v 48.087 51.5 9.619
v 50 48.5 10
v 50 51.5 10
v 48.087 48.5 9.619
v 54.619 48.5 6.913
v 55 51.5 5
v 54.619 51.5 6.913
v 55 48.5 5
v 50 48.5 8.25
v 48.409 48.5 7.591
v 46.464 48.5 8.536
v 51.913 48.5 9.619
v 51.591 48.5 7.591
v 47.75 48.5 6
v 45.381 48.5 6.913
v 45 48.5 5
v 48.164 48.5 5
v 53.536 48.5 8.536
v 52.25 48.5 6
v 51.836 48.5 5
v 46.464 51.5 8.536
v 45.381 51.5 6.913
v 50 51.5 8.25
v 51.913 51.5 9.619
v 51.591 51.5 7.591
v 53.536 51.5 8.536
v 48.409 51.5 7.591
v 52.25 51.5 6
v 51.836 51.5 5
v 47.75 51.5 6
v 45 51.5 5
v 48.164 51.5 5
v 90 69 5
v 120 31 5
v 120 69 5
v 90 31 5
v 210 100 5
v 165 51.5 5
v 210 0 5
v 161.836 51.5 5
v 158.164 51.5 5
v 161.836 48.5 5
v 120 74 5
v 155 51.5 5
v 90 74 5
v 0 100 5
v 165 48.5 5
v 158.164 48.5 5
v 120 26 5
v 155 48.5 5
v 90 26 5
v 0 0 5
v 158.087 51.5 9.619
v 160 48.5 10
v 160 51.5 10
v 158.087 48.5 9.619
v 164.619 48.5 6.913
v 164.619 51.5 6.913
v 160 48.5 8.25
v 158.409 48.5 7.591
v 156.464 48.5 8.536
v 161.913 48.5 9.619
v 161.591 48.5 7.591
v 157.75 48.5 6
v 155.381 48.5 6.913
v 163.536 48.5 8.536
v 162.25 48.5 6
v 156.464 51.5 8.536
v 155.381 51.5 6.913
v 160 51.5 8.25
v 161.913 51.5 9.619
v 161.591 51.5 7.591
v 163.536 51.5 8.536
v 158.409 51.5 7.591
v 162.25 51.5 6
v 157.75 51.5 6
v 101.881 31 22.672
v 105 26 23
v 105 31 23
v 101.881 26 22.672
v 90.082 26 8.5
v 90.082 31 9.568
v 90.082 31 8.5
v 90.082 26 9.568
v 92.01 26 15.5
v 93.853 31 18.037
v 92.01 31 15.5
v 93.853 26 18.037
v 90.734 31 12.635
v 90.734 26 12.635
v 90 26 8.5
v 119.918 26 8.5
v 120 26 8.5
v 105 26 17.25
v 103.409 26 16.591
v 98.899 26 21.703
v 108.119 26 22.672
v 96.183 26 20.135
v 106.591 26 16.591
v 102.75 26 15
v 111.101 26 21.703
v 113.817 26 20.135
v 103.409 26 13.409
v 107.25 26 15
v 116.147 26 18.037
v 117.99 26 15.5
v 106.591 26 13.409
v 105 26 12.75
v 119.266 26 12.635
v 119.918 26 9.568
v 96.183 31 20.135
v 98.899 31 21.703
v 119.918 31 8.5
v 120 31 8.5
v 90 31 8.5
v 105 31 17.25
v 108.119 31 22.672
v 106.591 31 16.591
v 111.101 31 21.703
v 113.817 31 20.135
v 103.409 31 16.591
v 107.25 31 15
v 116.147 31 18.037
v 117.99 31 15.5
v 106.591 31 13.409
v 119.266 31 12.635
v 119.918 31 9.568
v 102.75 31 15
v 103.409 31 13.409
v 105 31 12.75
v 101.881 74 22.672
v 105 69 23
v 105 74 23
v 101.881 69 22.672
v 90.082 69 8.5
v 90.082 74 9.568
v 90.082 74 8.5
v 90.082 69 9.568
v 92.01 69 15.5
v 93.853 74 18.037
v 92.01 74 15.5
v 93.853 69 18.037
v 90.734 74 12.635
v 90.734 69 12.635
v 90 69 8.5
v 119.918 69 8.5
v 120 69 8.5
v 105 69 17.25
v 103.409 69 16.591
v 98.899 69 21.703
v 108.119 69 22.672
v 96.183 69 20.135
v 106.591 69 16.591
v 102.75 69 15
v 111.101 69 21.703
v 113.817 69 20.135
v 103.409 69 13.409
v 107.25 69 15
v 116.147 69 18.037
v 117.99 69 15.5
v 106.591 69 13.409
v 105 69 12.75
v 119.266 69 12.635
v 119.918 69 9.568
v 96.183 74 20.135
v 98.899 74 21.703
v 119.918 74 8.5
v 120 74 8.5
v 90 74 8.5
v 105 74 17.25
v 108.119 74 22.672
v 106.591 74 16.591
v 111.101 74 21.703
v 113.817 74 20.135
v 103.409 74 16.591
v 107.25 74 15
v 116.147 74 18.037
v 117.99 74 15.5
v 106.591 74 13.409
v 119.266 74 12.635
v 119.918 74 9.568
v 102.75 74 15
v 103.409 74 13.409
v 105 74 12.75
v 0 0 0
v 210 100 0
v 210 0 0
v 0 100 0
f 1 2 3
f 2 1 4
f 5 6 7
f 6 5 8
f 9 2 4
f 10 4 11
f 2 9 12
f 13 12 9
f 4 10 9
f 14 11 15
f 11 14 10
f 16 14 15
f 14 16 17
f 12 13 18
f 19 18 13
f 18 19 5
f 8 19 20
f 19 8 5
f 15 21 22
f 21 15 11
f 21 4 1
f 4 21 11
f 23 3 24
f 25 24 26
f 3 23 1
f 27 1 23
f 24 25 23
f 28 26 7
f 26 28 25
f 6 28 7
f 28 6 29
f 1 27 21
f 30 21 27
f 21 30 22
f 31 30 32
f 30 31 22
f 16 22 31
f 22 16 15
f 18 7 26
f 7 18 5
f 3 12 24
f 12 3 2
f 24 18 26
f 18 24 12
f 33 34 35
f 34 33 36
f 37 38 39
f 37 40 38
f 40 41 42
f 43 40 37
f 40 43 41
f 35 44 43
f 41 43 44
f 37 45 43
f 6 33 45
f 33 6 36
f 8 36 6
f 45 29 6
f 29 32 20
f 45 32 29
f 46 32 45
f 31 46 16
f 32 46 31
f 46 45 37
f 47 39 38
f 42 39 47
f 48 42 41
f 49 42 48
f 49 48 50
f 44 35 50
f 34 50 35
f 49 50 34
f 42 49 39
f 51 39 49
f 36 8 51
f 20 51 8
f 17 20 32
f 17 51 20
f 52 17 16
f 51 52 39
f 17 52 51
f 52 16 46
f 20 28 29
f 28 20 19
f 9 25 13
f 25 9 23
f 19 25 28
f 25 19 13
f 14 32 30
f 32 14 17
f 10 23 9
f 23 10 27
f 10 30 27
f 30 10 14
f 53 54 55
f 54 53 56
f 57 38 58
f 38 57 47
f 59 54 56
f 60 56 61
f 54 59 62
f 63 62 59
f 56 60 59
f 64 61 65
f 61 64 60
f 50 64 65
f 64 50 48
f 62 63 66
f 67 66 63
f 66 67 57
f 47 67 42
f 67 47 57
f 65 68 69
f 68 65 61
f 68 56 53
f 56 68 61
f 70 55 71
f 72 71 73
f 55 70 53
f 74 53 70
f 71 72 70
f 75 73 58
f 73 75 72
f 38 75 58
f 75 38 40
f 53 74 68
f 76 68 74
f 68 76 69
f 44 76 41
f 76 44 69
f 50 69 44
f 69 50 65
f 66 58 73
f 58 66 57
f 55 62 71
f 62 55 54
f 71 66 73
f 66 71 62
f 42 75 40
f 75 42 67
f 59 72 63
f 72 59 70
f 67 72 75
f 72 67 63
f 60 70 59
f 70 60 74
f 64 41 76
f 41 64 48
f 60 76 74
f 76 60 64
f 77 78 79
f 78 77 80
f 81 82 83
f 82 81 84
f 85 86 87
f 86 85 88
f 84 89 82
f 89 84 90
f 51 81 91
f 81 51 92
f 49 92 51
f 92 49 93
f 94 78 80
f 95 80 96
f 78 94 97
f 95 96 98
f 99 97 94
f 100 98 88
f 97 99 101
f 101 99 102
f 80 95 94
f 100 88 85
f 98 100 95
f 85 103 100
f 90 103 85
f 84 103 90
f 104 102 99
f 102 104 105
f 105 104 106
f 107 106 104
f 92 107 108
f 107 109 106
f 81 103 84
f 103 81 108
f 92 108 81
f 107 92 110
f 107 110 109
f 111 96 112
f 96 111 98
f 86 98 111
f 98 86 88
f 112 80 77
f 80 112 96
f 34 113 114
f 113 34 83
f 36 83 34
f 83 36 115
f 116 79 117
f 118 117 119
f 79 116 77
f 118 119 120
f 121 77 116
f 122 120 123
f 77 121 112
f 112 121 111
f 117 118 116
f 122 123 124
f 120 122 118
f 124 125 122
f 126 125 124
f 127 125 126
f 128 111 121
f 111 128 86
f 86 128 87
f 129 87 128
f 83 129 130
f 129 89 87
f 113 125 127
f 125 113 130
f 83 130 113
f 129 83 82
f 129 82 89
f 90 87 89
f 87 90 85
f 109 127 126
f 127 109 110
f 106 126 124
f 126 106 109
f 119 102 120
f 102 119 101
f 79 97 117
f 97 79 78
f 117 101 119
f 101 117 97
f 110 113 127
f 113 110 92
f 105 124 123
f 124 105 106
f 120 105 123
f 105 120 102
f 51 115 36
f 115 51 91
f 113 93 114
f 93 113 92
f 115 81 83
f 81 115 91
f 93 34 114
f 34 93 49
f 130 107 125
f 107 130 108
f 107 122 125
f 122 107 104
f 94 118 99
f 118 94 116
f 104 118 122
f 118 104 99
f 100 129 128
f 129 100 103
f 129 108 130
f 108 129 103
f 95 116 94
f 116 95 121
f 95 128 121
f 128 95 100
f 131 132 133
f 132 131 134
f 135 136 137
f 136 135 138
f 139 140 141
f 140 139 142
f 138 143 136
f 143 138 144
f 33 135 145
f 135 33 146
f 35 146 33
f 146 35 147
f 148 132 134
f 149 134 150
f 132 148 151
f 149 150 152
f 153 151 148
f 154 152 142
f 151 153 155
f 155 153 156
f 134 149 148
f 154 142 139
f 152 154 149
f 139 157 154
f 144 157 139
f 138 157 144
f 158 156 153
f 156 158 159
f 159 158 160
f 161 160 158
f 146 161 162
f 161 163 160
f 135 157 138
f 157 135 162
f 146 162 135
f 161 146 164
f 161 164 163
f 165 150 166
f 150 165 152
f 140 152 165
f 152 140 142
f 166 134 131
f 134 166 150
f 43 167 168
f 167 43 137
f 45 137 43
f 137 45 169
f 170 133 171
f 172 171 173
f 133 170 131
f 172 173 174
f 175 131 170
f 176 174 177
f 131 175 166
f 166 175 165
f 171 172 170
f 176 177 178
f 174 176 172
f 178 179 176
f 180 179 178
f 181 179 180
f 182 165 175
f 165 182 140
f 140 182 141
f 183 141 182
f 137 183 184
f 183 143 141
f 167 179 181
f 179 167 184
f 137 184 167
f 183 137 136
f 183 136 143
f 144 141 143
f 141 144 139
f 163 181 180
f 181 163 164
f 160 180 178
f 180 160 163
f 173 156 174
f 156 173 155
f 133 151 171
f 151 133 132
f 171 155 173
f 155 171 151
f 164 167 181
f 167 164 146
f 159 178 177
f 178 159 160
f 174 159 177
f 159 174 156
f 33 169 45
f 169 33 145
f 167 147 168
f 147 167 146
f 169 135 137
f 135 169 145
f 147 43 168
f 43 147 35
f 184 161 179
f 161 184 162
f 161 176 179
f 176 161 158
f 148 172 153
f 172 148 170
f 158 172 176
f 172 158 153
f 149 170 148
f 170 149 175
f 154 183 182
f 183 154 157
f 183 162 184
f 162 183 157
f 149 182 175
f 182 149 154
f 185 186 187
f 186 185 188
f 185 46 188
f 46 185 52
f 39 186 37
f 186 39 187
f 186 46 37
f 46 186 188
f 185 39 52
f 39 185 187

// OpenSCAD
// prototype pedal 
plate_width = 210;
plate_length = 100;
plate_height = 5;

helperplate_width = 30;
helperplate_length = 5;
helperplate_height = 8;

spring_point = 55;


helperhelper_width = 40;
helperhelper_length = 12; 
helperhelper_height = 5;


plate_dimensions = [
	plate_width,
	plate_length,
	plate_height];
	
helperplate_dimensions = [
	helperplate_width,
	helperplate_length,
	helperplate_height];
	
helperhelper_dimensions = [
	helperhelper_width,
	helperhelper_length, 
	helperhelper_height,
];
	
drillhole_gap = 10;
drillhole_diameter = 4.5;
drillhole_spring_diameter = 6.5;
edge_gap = drillhole_gap + drillhole_diameter / 2; 


module lochplatte( groesse, loch_dm, loch_abst, anzahl = [12,6] ) {

	difference() {

		cube( plate_dimensions );

		randabstand   = loch_abst + loch_dm/2;
		x_lochdistanz = (groesse.x - 2*randabstand) / (anzahl.x - 1);
		y_lochdistanz = (groesse.y - 2*randabstand) / (anzahl.y - 1);
		x_werte       = [randabstand : x_lochdistanz : groesse.x - randabstand + 0.1];
		y_werte       = [randabstand : y_lochdistanz : groesse.y - randabstand + 0.1];

	
		// Bohrlöcher
		for (x = x_werte, y = y_werte)
	    translate( [x, y, -1] )
	    //color( "red" )
	    cylinder( d = loch_dm, h = groesse.z + 2);

	}

}

//https://www.reddit.com/r/openscad/comments/loask5/half_sphere_cropping_how_do_i_cut_things/
module halfcylinder(he,rd) {
difference(){
cylinder (h=he,r=rd);
translate ([0,-rd-0.1,-0.1]) cube([rd+0.1,rd*2+0.2,he+0.2]);
} // df
} // mod
cylinder_radius = 15;
cylinder_height = 5;

// use this command to get 2D redering -> deswegen auch alles rotiert
//projection(){
union(){

//linker Bügel
//rotate([90,0,0])
difference(){
    union(){
        translate([
			plate_width/2-helperplate_width/2, 
			plate_length/2-24,
			(cylinder_radius/2)-plate_height-2])
        //color("black")
        cube(helperplate_dimensions);
        
        translate([plate_width/2, plate_length/2-24, 8])
        rotate([270,90,0])
        //color("blue")
        halfcylinder(cylinder_height,cylinder_radius);
    };
	
	translate([plate_width/2, plate_length/2-20, 15])
    rotate([90,90,0])
	//color("black")
    cylinder(d = drillhole_diameter, h=cylinder_height + 5, center = true);
}


//rechte Bügel
//rotate([90,0,0])
difference(){
    union(){
        translate([
			plate_width/2-helperplate_width/2, 
			//plate_length-21-cylinder_height,
			plate_length/2+24-5,
			(cylinder_radius/2)-plate_height-2])
        //color("black")
        cube(helperplate_dimensions);
        
        translate([plate_width/2, plate_length/2+19, 8])
        rotate([270,90,0])
        //color("green")
        halfcylinder(cylinder_height,cylinder_radius);
    };
	
	translate([plate_width/2, plate_length-23-cylinder_height, 15])
    rotate([90,90,0])
	//color("red")
    cylinder(d = drillhole_diameter, h=cylinder_height + 5, center = true);
}

//rotate([90,0,0])
difference(){
		translate([plate_width/2-spring_point, plate_length/2-3/2, plate_height])
		rotate([270,90,0])
		//color("pink")
		halfcylinder(3,5);
		
		translate([plate_width/2-spring_point, plate_length/2, plate_height+1])
		rotate([90,90,0])
		cylinder(d = drillhole_diameter, h=cylinder_height + 5, center = true);		
}

//rotate([90,0,0])
difference(){
		translate([plate_width/2+spring_point, plate_length/2-3/2, plate_height])
		rotate([270,90,0])
		//color("pink")
		halfcylinder(3,5);
		
		translate([plate_width/2+spring_point, plate_length/2, plate_height+1])
		rotate([90,90,0])
		cylinder(d = drillhole_diameter, h=cylinder_height + 5, center = true);		
}



//hier ziehen wir sachen von anderen sachen ab
//rotate([90,0,0])
union(){
   	translate([plate_width/2,plate_length-20-cylinder_height,plate_height/2])
	cube(helperhelper_dimensions, center = true);	
	
	translate([plate_width/2,(plate_length/2-20-cylinder_height),plate_height/2])
	cube(helperhelper_dimensions, center = true);	
	
	//lochplatte(groesse = plate_dimensions, loch_dm= 10, loch_abst = 4 );
	cube(plate_dimensions);
	translate([plate_width-2,0,3.5])
	rotate([90,180,0])
	text("nici - v1.0", size=2.5);
}
//}


}
